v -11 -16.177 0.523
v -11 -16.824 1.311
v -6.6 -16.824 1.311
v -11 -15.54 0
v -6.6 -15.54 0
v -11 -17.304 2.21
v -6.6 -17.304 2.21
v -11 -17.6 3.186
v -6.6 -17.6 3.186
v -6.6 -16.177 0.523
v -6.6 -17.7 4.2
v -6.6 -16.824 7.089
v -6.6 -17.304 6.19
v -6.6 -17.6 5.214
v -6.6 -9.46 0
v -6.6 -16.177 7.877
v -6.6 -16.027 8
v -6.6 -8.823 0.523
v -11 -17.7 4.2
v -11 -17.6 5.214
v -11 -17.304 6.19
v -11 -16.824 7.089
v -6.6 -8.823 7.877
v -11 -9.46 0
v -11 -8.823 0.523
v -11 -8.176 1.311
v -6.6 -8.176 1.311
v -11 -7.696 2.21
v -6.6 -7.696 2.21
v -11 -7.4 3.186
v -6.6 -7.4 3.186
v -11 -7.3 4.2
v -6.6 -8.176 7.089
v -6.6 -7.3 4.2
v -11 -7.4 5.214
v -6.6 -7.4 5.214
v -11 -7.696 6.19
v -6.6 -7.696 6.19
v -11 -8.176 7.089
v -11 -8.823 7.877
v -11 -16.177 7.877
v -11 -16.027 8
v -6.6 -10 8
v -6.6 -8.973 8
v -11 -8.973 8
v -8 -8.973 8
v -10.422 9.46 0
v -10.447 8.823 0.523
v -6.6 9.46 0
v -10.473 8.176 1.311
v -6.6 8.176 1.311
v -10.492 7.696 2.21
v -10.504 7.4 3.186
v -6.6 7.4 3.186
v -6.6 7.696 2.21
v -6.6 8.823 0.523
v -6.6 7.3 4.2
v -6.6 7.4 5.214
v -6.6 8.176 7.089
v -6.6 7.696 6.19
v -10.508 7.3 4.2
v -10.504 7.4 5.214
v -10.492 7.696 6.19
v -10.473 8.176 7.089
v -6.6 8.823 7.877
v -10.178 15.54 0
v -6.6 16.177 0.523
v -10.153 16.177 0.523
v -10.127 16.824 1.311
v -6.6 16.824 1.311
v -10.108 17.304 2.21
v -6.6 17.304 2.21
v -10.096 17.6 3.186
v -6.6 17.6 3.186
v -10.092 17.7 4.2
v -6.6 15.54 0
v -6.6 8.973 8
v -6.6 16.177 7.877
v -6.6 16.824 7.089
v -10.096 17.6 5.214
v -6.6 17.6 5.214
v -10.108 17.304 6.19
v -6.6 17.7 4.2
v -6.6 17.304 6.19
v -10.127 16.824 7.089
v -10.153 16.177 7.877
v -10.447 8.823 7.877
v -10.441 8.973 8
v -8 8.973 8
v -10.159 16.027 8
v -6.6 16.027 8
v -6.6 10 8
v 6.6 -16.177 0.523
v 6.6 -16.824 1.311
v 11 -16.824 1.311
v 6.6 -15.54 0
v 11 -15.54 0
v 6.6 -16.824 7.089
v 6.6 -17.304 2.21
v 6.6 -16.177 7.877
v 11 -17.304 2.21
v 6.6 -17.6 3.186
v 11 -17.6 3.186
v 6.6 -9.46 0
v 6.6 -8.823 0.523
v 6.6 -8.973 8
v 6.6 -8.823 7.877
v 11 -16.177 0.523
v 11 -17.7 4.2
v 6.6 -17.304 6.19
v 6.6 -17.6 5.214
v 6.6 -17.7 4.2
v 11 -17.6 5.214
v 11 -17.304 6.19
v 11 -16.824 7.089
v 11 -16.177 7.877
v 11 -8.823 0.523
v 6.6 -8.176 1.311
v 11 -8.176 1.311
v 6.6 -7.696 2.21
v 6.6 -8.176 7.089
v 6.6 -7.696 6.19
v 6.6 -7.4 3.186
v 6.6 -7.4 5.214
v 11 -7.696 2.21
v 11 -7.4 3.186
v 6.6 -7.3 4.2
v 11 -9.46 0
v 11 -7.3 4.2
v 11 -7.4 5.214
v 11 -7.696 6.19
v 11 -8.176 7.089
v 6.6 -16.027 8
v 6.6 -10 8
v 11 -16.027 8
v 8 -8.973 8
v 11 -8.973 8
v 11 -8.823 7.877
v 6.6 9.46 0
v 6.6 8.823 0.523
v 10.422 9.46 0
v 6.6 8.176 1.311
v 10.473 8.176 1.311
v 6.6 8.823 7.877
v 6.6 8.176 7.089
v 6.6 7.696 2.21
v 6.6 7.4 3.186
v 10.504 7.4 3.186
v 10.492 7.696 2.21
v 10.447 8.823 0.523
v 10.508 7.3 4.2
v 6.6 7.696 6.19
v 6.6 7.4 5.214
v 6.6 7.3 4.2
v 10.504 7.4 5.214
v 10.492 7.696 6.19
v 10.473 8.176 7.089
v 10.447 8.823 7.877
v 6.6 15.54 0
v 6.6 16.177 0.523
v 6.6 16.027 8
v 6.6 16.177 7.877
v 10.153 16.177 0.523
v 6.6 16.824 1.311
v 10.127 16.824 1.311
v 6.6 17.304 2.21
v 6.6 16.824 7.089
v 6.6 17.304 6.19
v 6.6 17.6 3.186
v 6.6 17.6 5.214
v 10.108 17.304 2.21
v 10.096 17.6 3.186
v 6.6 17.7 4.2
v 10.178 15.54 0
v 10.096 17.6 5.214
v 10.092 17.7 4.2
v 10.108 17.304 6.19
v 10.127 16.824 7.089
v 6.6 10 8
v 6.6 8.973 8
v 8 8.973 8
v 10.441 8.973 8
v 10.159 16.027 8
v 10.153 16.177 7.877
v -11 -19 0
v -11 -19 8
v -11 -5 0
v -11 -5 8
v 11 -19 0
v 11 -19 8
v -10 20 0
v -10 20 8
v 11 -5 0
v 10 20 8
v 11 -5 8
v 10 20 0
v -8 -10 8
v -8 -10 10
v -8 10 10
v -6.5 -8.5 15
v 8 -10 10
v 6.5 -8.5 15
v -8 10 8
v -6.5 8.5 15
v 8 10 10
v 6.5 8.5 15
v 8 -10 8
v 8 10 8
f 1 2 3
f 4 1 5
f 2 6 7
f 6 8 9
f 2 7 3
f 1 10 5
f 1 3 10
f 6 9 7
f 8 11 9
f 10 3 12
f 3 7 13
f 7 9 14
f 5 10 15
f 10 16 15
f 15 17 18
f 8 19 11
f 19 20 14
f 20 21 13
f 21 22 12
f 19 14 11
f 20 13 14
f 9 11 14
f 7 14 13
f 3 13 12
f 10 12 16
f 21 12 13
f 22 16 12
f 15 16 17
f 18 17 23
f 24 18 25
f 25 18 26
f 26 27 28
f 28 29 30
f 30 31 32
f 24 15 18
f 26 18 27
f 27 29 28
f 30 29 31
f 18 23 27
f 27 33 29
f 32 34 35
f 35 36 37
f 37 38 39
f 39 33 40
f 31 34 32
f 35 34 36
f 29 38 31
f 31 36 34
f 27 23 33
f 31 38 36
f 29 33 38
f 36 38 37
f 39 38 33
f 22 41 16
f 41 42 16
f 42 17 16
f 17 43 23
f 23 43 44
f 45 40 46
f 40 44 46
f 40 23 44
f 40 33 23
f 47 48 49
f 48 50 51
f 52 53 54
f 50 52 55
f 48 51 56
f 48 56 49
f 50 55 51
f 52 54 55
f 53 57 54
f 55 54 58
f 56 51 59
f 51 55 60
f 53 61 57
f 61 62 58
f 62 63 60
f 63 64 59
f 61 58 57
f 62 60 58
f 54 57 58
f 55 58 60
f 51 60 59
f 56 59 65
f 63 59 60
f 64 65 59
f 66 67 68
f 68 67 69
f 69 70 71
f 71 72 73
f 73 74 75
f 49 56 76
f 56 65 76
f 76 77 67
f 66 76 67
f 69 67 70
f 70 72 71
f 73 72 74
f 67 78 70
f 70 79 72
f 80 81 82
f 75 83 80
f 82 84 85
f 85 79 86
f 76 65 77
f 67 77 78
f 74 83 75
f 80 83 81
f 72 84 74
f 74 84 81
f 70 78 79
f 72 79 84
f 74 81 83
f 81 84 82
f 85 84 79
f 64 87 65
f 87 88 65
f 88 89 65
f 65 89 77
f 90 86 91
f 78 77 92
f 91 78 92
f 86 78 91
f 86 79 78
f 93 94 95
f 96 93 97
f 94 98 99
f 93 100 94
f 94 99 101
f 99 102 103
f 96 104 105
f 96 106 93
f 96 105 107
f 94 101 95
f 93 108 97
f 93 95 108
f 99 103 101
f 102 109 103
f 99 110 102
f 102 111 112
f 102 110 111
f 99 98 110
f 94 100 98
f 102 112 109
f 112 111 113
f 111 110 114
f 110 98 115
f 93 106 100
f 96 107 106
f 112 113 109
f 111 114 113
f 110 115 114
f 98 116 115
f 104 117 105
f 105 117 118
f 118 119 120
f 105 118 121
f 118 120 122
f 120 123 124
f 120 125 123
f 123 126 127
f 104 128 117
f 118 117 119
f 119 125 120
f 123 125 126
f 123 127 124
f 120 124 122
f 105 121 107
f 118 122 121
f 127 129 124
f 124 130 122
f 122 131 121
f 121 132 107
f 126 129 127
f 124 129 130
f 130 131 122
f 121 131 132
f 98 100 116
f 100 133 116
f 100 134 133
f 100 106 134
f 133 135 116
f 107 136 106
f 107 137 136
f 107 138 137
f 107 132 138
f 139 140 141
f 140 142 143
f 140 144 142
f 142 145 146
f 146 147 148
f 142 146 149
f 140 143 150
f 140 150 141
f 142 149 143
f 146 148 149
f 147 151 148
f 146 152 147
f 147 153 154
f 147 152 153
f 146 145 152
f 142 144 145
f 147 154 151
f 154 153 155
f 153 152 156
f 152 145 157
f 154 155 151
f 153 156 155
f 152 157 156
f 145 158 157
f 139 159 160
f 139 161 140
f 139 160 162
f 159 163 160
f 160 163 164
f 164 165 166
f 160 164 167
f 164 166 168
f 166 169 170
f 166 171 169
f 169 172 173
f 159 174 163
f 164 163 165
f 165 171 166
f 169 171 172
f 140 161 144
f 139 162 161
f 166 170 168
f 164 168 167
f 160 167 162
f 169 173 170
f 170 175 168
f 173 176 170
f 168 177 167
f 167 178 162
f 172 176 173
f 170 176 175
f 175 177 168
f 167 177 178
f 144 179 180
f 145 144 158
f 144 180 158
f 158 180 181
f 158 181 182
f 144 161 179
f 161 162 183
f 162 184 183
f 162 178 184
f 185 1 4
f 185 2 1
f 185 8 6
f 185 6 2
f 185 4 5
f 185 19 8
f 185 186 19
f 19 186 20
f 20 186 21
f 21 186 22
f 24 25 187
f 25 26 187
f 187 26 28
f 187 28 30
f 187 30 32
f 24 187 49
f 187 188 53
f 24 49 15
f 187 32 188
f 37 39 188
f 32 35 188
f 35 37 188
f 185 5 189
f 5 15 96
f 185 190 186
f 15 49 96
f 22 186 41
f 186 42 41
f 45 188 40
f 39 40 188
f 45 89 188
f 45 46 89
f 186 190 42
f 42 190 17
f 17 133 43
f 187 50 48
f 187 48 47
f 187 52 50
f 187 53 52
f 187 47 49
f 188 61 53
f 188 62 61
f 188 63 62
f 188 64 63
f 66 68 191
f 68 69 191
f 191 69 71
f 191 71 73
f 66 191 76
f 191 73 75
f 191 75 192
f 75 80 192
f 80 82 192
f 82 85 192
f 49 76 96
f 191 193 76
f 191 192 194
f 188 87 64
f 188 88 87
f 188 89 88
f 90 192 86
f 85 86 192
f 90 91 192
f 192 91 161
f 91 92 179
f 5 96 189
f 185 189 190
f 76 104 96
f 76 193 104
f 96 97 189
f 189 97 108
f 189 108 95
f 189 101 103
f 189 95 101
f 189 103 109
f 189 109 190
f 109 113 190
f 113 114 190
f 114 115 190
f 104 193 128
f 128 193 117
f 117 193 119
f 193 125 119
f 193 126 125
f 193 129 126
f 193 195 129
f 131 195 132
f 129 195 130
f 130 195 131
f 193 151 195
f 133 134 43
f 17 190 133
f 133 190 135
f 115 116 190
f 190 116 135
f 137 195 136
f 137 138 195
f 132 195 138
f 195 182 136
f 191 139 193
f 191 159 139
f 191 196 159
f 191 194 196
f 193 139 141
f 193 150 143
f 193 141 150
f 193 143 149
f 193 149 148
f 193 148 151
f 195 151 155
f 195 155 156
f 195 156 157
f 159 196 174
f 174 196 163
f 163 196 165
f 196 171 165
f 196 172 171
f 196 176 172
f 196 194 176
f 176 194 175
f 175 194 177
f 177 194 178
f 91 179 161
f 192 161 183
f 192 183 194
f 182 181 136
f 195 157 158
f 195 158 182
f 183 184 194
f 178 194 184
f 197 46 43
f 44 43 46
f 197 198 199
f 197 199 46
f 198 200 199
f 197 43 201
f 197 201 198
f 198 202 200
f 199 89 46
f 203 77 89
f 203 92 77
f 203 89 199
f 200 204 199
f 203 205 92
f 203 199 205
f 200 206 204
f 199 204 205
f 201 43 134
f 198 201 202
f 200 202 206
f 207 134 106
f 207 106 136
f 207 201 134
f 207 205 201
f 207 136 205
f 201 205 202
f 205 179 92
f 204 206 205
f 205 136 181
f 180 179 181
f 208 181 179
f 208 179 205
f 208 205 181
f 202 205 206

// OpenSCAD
// Compact parametric village car, dimensions in millimetres.
$fn = 32;

body_width = 22;
wheelbase = 25;
wheel_radius = 5.2;
wheel_arch_depth = 4.4;

module lower_body() {
    difference() {
        hull() {
            translate([0, -12, 4])
                cube([body_width, 14, 8], center = true);
            translate([0, 14, 4])
                cube([body_width - 2, 12, 8], center = true);
        }

        for (side = [-1, 1])
            for (y = [-wheelbase / 2, wheelbase / 2])
                translate([side * (body_width / 2 - wheel_arch_depth / 2), y, 4.2])
                    rotate([0, 90, 0])
                        cylinder(h = wheel_arch_depth, r = wheel_radius, center = true);
    }
}

module cabin() {
    hull() {
        translate([0, -6, 9])
            cube([16, 8, 2], center = true);
        translate([0, 6, 9])
            cube([16, 8, 2], center = true);
        translate([0, 0, 14])
            cube([13, 17, 2], center = true);
    }
}

union() {
    lower_body();
    cabin();
}
